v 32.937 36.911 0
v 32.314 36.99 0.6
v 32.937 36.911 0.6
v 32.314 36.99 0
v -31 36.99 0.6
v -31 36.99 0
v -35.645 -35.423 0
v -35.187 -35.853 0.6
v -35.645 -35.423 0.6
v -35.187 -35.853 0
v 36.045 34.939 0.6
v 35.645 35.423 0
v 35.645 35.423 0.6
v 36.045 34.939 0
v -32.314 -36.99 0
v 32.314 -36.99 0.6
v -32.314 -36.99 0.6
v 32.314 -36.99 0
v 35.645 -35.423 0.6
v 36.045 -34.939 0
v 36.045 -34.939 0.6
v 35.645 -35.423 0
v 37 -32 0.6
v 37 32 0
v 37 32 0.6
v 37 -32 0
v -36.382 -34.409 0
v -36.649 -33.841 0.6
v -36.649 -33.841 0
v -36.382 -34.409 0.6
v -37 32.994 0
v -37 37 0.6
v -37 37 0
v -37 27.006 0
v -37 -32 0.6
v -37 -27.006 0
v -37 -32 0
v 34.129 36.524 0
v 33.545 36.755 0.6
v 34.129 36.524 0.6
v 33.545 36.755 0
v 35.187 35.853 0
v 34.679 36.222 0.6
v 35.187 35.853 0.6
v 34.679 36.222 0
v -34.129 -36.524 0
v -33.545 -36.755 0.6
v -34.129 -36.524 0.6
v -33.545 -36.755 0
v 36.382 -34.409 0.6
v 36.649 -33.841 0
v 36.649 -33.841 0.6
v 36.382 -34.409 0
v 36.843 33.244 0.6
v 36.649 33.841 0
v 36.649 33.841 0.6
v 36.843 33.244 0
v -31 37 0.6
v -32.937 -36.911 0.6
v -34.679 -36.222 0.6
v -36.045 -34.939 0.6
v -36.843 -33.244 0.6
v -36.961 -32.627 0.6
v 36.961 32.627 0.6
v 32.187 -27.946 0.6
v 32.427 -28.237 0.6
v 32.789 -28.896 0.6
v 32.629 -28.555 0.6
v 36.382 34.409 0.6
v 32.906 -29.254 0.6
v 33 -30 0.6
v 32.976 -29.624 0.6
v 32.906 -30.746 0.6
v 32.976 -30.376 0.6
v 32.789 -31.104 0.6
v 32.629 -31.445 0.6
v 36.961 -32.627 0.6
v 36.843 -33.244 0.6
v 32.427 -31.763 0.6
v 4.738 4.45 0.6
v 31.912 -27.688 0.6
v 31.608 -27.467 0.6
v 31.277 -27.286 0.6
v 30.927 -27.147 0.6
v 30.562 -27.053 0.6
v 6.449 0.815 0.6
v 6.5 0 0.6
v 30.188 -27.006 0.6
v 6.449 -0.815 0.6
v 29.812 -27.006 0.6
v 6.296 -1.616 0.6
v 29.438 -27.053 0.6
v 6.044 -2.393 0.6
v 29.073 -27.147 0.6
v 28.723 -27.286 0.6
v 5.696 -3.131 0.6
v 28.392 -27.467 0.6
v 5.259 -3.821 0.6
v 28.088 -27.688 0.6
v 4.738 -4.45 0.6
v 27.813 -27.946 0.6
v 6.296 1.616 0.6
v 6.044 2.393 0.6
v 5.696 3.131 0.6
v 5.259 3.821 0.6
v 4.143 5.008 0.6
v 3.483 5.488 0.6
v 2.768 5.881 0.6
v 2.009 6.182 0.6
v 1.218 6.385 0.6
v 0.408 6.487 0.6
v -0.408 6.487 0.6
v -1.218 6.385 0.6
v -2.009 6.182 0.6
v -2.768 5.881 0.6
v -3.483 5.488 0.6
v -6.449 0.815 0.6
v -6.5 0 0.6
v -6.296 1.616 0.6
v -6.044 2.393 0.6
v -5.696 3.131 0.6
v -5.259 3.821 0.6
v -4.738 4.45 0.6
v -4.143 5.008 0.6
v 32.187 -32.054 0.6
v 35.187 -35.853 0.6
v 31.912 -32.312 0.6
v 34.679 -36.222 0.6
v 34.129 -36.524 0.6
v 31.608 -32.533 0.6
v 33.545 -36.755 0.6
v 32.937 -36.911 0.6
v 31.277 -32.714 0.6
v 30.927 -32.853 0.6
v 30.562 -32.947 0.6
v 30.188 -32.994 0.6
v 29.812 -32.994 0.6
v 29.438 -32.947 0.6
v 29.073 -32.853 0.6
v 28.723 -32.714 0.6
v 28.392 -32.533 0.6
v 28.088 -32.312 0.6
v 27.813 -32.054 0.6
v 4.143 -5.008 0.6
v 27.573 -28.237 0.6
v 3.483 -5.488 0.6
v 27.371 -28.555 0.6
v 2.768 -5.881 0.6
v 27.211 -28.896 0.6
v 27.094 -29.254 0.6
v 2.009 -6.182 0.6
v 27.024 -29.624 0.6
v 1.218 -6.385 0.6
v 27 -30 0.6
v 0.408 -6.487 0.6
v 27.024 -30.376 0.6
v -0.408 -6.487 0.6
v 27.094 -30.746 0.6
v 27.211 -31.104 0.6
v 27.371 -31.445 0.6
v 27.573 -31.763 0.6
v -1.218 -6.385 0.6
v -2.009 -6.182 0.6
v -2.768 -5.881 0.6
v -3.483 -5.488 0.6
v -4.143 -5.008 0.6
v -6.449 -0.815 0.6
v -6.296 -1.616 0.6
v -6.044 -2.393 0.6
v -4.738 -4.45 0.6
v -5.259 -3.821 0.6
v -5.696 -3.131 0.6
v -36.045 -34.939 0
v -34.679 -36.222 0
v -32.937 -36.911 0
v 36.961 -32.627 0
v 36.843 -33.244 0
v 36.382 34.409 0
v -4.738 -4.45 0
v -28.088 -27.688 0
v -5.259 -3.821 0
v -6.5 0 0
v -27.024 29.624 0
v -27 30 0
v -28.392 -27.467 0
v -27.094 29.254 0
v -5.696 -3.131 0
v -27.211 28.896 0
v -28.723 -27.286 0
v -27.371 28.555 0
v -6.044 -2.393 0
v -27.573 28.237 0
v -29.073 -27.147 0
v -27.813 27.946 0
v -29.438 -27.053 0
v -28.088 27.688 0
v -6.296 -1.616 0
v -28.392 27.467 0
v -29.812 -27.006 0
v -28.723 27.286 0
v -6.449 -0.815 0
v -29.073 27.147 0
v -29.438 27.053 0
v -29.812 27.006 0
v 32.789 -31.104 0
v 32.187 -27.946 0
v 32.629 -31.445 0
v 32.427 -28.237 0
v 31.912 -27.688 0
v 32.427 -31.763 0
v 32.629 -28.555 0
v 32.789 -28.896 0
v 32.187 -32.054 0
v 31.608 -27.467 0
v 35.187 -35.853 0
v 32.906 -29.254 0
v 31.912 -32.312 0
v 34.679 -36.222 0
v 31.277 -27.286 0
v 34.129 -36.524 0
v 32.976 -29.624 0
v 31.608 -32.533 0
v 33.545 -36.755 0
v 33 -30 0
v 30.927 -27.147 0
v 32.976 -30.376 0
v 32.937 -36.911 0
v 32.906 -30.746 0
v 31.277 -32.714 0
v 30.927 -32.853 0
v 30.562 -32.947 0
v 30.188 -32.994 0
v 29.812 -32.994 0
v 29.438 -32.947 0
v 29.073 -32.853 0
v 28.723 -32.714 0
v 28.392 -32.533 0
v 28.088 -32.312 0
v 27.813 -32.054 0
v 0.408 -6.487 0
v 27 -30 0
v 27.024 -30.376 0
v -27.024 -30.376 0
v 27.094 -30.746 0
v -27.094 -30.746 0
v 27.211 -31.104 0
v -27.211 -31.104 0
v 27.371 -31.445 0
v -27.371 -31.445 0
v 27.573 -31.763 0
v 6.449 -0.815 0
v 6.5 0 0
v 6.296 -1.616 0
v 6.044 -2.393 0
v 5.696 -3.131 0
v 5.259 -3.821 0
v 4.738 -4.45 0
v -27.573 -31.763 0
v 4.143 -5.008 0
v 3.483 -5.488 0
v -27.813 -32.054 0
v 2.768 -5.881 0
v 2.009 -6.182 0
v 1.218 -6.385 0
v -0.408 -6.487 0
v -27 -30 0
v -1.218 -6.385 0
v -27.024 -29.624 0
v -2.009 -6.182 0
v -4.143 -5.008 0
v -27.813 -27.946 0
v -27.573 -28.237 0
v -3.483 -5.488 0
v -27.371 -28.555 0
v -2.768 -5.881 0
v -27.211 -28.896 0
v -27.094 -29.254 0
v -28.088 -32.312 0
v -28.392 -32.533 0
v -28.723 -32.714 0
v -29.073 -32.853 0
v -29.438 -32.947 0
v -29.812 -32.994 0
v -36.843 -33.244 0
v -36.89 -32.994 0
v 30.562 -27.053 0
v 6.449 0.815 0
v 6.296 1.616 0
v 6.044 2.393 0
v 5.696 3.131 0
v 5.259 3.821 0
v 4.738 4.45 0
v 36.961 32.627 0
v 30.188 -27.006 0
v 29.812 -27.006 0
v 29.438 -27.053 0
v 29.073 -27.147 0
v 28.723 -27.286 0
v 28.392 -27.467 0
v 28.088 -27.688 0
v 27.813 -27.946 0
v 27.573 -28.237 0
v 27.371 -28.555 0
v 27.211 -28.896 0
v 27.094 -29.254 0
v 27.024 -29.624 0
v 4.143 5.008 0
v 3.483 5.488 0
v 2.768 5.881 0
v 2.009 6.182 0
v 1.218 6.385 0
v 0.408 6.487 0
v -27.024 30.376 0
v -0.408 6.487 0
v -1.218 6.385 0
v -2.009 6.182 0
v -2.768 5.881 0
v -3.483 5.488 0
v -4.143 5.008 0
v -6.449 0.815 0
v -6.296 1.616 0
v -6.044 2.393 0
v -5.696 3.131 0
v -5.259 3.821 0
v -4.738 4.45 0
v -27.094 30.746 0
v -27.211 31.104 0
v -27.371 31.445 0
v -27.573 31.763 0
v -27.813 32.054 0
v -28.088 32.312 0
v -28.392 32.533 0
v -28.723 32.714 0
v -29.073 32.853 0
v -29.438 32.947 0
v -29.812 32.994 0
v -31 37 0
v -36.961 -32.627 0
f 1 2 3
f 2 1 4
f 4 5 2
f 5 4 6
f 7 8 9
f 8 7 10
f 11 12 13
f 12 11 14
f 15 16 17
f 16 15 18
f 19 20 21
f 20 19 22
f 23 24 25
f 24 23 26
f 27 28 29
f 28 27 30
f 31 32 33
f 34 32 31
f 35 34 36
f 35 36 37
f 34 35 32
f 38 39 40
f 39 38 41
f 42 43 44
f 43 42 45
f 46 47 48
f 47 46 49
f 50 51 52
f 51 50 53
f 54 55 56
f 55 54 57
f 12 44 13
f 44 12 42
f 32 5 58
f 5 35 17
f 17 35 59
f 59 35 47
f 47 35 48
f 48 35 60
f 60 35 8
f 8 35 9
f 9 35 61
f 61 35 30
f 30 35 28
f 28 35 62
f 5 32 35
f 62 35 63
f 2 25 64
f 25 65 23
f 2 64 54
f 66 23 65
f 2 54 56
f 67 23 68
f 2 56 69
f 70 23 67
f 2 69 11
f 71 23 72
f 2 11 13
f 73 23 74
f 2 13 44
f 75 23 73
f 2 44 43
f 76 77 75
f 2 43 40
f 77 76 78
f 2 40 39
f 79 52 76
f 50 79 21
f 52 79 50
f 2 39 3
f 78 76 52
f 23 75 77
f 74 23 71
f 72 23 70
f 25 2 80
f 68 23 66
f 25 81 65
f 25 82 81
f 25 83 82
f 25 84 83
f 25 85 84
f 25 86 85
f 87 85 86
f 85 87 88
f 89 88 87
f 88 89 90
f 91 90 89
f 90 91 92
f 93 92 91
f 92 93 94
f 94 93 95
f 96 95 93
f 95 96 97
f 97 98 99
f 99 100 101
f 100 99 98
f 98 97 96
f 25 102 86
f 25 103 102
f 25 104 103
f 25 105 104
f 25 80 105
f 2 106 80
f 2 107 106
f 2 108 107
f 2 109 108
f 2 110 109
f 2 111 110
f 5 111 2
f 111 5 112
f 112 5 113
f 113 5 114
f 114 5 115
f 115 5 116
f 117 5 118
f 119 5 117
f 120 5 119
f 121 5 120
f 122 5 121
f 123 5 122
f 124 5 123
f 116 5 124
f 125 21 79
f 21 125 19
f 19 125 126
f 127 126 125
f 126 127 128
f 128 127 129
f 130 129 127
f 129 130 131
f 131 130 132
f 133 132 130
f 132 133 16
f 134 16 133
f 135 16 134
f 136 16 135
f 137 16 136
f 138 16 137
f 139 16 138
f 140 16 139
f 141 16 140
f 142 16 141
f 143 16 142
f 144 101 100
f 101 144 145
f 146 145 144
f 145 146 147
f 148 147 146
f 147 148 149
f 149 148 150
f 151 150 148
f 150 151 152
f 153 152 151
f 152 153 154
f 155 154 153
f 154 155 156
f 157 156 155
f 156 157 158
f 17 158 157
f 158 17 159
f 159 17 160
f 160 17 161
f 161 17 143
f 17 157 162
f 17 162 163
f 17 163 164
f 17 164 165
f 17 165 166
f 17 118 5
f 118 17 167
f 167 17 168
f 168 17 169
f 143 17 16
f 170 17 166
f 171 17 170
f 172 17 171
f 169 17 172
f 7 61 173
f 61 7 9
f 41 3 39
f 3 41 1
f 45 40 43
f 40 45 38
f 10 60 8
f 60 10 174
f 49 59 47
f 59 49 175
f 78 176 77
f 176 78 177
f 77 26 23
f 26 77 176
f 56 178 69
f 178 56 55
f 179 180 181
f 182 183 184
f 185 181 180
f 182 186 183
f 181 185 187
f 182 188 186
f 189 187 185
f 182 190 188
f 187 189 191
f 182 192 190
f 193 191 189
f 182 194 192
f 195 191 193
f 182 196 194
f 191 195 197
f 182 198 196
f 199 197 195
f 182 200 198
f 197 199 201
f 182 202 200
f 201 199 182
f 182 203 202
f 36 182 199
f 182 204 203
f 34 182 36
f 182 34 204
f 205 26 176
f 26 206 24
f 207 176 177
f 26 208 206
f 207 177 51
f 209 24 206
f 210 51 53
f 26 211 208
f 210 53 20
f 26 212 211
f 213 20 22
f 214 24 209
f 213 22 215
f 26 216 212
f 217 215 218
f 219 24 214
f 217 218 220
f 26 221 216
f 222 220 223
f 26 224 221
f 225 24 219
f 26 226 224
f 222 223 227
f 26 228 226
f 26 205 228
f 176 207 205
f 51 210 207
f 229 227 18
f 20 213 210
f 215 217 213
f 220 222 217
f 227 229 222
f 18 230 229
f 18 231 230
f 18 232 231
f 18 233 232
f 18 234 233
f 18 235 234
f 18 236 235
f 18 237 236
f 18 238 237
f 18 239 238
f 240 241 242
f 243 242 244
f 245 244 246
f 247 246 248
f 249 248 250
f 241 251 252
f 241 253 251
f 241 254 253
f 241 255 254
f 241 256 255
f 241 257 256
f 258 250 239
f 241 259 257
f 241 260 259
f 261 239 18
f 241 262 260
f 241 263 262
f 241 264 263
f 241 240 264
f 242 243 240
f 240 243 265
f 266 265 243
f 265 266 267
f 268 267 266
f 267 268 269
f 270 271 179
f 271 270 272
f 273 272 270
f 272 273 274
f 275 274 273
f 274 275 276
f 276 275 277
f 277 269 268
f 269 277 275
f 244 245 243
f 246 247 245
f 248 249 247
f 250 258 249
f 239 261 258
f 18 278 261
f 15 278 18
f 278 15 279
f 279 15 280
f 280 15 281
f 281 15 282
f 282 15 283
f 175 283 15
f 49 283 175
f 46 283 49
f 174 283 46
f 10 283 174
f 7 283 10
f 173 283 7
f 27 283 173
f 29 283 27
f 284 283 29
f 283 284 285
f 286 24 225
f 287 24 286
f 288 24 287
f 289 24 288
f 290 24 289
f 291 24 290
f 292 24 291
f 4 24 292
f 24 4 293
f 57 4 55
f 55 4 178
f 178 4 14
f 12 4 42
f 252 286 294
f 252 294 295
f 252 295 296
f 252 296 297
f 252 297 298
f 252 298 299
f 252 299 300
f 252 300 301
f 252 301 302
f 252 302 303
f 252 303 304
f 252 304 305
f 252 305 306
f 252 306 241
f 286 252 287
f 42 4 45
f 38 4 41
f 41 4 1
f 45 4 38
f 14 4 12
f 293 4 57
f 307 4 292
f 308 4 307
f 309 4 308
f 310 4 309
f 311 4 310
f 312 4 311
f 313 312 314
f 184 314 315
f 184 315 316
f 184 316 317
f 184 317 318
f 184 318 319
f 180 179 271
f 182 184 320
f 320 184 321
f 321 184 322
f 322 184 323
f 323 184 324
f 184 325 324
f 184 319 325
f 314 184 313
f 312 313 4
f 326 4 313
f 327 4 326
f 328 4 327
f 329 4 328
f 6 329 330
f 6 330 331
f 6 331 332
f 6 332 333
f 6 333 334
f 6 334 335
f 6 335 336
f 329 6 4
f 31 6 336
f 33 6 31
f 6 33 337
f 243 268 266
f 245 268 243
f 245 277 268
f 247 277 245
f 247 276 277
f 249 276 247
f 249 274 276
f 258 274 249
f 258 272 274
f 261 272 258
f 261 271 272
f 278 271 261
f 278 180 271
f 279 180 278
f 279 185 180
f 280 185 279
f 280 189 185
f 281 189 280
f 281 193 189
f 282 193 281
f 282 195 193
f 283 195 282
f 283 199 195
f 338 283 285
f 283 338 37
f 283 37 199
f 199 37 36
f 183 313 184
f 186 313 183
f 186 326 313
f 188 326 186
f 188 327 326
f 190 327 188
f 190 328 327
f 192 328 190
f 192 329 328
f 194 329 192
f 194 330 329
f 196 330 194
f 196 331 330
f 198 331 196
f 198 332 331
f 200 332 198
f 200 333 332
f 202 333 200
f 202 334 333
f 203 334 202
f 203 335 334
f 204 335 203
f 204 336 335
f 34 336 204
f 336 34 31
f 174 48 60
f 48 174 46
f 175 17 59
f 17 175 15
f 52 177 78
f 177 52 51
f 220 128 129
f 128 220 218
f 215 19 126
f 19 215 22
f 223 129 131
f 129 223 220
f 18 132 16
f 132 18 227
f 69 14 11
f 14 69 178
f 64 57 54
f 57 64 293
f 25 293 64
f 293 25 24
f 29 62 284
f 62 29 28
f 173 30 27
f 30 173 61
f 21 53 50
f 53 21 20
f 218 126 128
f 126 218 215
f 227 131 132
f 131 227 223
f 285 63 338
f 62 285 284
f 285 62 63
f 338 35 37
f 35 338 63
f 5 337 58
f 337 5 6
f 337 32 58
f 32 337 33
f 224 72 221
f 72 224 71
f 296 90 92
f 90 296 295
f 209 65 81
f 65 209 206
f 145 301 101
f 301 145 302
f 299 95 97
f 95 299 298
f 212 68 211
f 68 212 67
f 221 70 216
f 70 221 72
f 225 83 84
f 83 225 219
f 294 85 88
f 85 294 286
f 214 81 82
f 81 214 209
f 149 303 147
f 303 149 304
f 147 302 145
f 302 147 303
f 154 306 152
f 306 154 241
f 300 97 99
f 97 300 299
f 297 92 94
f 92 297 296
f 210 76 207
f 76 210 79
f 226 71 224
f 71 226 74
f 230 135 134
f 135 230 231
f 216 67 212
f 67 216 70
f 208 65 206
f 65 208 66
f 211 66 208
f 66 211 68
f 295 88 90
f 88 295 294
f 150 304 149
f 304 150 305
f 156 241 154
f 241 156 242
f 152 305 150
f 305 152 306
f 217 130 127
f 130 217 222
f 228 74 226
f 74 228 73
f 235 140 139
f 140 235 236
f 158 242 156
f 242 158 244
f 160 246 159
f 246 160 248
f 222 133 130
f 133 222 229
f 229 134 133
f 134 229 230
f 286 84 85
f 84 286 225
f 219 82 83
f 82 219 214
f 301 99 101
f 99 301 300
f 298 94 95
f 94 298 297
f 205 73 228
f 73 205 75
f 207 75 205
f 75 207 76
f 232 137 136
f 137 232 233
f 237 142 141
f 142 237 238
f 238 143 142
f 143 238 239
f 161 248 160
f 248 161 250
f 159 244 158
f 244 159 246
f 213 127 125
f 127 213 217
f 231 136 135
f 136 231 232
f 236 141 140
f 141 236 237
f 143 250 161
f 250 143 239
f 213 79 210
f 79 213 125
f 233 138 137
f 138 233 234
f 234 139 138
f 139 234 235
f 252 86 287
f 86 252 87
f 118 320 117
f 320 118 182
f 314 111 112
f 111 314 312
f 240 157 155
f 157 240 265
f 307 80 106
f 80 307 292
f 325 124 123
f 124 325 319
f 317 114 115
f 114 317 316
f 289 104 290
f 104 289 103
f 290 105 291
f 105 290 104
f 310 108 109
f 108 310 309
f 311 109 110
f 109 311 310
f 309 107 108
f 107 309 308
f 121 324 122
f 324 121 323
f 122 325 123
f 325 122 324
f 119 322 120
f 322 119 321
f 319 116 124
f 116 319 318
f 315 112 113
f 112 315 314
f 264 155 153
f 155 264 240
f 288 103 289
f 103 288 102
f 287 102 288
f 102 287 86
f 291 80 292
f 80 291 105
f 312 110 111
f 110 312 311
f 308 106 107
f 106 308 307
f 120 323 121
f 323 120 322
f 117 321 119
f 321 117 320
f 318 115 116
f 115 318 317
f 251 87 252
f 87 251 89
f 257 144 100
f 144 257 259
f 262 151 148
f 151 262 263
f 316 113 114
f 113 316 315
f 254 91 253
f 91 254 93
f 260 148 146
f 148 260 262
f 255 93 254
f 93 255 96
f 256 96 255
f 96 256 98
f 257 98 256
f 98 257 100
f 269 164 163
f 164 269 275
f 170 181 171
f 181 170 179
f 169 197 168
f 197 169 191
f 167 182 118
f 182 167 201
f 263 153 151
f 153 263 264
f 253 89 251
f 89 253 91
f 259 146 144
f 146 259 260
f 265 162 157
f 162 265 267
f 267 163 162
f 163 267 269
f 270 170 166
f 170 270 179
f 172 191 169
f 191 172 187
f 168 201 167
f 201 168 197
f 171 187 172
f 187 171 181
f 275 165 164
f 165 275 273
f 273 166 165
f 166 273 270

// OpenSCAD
$fn = 50;


difference() {
	union() {
		hull() {
			translate(v = [-32.0000000000, 32.0000000000, 0]) {
				cylinder(h = 0.6000000000, r = 5);
			}
			translate(v = [32.0000000000, 32.0000000000, 0]) {
				cylinder(h = 0.6000000000, r = 5);
			}
			translate(v = [-32.0000000000, -32.0000000000, 0]) {
				cylinder(h = 0.6000000000, r = 5);
			}
			translate(v = [32.0000000000, -32.0000000000, 0]) {
				cylinder(h = 0.6000000000, r = 5);
			}
		}
		translate(v = [-37.0000000000, 31.0000000000, 0]) {
			cube(size = [6, 6, 0.6000000000]);
		}
	}
	union() {
		translate(v = [-37.5000000000, -30.0000000000, -250.0000000000]) {
			rotate(a = [0, 0, 0]) {
				difference() {
					union() {
						hull() {
							translate(v = [7.5000000000, 0, 0]) {
								cylinder(h = 250, r = 3.0000000000, r1 = 3.0000000000, r2 = 3.0000000000);
							}
							translate(v = [-7.5000000000, 0, 0]) {
								cylinder(h = 250, r = 3.0000000000, r1 = 3.0000000000, r2 = 3.0000000000);
							}
						}
					}
					union();
				}
			}
		}
		translate(v = [-37.5000000000, 30.0000000000, -250.0000000000]) {
			rotate(a = [0, 0, 0]) {
				difference() {
					union() {
						hull() {
							translate(v = [7.5000000000, 0, 0]) {
								cylinder(h = 250, r = 3.0000000000, r1 = 3.0000000000, r2 = 3.0000000000);
							}
							translate(v = [-7.5000000000, 0, 0]) {
								cylinder(h = 250, r = 3.0000000000, r1 = 3.0000000000, r2 = 3.0000000000);
							}
						}
					}
					union();
				}
			}
		}
		translate(v = [30.0000000000, -30.0000000000, -50.0000000000]) {
			cylinder(h = 100, r = 3.0000000000);
		}
		cylinder(h = 0.6000000000, r = 6.5000000000);
	}
}
